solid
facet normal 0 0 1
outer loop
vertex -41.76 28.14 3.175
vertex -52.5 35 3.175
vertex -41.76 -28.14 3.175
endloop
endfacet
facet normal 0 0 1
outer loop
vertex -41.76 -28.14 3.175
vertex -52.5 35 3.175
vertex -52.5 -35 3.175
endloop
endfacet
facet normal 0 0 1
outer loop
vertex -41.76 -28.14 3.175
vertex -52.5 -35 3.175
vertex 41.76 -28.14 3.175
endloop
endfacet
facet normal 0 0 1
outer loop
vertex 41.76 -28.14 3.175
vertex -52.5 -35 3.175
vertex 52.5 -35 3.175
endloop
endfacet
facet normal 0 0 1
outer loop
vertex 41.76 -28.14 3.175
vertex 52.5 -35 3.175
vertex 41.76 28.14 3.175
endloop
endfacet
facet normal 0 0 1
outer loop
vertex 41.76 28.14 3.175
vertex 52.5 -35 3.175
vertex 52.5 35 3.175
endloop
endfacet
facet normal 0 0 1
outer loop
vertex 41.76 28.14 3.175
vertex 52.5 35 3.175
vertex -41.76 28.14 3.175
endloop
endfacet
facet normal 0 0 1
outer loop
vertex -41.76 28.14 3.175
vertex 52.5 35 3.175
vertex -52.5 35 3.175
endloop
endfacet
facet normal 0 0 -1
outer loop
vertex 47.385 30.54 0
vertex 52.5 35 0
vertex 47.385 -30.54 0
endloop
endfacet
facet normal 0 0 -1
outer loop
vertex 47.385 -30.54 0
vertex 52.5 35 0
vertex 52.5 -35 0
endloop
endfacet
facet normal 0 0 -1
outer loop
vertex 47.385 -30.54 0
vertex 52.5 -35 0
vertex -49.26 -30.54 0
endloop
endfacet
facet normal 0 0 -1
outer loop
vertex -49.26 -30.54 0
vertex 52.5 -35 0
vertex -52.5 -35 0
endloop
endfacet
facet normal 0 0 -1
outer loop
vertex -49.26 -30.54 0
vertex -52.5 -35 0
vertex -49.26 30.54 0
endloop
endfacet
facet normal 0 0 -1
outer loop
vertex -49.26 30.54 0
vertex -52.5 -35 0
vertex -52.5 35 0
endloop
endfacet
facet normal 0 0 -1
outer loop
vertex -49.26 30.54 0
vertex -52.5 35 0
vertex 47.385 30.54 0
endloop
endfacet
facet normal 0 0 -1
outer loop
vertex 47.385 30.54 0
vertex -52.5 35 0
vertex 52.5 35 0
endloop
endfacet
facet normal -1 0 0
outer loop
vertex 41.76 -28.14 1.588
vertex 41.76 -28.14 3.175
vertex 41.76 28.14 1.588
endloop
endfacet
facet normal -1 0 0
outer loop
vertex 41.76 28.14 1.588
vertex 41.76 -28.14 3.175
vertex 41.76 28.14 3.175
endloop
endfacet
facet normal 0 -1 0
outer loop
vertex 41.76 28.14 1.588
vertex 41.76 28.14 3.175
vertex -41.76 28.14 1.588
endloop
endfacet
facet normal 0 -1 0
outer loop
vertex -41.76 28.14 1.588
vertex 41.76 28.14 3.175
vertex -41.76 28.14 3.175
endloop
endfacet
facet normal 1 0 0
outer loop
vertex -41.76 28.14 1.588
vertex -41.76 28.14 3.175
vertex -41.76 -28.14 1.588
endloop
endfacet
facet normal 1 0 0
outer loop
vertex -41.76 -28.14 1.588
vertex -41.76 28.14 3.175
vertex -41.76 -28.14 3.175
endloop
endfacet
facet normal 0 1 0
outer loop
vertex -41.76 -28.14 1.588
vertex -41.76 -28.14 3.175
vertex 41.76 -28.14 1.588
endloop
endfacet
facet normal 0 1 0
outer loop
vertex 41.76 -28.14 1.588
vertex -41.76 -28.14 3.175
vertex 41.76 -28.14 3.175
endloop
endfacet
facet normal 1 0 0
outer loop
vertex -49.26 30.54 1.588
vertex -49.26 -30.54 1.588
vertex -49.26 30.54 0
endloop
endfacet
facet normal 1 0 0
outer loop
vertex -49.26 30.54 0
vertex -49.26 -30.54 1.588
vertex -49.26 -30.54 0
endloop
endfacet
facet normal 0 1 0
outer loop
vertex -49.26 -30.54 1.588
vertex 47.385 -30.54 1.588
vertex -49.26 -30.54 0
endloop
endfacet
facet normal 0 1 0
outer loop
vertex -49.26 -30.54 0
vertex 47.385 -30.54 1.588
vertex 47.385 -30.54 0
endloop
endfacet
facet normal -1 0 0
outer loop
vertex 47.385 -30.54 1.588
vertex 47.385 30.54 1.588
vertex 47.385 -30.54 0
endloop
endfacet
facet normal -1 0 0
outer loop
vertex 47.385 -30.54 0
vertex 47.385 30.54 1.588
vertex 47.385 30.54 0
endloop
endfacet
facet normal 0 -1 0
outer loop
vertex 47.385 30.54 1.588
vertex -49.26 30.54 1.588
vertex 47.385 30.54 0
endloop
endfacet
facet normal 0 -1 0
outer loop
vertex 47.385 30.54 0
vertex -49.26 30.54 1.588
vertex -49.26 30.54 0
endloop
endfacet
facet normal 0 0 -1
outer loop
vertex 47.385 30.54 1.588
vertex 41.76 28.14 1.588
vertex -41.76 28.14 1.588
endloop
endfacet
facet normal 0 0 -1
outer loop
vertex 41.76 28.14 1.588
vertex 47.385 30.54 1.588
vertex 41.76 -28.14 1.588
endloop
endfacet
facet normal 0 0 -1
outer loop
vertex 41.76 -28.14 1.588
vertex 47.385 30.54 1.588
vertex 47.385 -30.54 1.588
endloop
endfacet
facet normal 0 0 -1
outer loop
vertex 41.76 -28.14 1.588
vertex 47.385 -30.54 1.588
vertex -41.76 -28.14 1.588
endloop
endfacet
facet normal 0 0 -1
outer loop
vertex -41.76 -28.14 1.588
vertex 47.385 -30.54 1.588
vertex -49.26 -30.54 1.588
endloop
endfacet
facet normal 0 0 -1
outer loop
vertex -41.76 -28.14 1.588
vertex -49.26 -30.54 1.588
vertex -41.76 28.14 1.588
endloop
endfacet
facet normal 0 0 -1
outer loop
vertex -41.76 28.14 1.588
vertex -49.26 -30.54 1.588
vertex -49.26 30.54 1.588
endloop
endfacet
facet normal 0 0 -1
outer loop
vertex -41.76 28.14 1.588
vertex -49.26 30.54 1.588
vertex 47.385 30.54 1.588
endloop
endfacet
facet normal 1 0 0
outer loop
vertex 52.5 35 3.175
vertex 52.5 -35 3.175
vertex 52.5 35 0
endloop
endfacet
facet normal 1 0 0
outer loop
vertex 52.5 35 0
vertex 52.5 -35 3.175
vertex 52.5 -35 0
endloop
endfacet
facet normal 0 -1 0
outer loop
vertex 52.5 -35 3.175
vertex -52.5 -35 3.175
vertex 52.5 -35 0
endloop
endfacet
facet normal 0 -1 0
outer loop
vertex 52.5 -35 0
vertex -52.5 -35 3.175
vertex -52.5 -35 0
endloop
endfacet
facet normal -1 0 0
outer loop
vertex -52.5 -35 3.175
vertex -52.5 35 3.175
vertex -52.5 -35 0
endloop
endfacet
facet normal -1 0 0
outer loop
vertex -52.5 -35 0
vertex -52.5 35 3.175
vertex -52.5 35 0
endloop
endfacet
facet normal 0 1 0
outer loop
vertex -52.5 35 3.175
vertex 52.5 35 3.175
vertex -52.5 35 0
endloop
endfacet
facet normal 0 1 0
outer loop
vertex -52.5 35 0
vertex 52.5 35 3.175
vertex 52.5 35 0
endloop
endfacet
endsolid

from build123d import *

# Parameters (mm, degrees)
SKETCH1_W           = 113.52
SKETCH1_H           = 111.28
SKETCH1_R           = 8.5
SKETCH1_W_2         = 6
SKETCH1_H_2         = 5.8
SKETCH1_W_3         = 83.52
SKETCH1_H_3         = 56.28
BOSS_EXTRUDE1_DEPTH = 3.175
SKETCH3_W           = 96.645
SKETCH3_H           = 61.08
SKETCH3_W_2         = 83.52
SKETCH3_H_2         = 56.28
CUT_EXTRUDE1_DEPTH  = 1.5875
SKETCH4_W           = 113.52
SKETCH4_H           = 111.28
SKETCH4_W_2         = 105
SKETCH4_H_2         = 70
CUT_EXTRUDE2_DEPTH  = 10


with BuildPart() as part:
    # Sketch1 → Boss-Extrude1 (new body)
    with BuildSketch(Plane.XY):
        with Locations((0, -12.5)):
            Rectangle(SKETCH1_W, SKETCH1_H)
        with Locations((-41.76, -53.14)):
            Circle(SKETCH1_R, mode=Mode.SUBTRACT)
        with Locations((41.76, -53.14)):
            Circle(SKETCH1_R, mode=Mode.SUBTRACT)
        with Locations((-7.5, -53.14)):
            Rectangle(SKETCH1_W_2, SKETCH1_H_2, mode=Mode.SUBTRACT)
        Rectangle(SKETCH1_W_3, SKETCH1_H_3, mode=Mode.SUBTRACT)
        with Locations((-22.5, -53.14)):
            Rectangle(SKETCH1_W_2, SKETCH1_H_2, mode=Mode.SUBTRACT)
        with Locations((7.5, -53.14)):
            Rectangle(SKETCH1_W_2, SKETCH1_H_2, mode=Mode.SUBTRACT)
        with Locations((22.5, -53.14)):
            Rectangle(SKETCH1_W_2, SKETCH1_H_2, mode=Mode.SUBTRACT)
    extrude(amount=BOSS_EXTRUDE1_DEPTH)

    # Sketch3 → Cut-Extrude1 (cut)
    with BuildSketch(Plane(origin=(0, 0, 0), x_dir=(-1, 0, 0), z_dir=(0, 0, -1))):
        with Locations((0.9375, 0)):
            Rectangle(SKETCH3_W, SKETCH3_H)
        Rectangle(SKETCH3_W_2, SKETCH3_H_2, mode=Mode.SUBTRACT)
    extrude(amount=-CUT_EXTRUDE1_DEPTH, mode=Mode.SUBTRACT)

    # Sketch4 → Cut-Extrude2 (cut)
    with BuildSketch(Plane.XY.offset(3.175)):
        with Locations((0, -12.5)):
            Rectangle(SKETCH4_W, SKETCH4_H)
        Rectangle(SKETCH4_W_2, SKETCH4_H_2, mode=Mode.SUBTRACT)
    extrude(amount=-CUT_EXTRUDE2_DEPTH, mode=Mode.SUBTRACT)


solid = part.part
